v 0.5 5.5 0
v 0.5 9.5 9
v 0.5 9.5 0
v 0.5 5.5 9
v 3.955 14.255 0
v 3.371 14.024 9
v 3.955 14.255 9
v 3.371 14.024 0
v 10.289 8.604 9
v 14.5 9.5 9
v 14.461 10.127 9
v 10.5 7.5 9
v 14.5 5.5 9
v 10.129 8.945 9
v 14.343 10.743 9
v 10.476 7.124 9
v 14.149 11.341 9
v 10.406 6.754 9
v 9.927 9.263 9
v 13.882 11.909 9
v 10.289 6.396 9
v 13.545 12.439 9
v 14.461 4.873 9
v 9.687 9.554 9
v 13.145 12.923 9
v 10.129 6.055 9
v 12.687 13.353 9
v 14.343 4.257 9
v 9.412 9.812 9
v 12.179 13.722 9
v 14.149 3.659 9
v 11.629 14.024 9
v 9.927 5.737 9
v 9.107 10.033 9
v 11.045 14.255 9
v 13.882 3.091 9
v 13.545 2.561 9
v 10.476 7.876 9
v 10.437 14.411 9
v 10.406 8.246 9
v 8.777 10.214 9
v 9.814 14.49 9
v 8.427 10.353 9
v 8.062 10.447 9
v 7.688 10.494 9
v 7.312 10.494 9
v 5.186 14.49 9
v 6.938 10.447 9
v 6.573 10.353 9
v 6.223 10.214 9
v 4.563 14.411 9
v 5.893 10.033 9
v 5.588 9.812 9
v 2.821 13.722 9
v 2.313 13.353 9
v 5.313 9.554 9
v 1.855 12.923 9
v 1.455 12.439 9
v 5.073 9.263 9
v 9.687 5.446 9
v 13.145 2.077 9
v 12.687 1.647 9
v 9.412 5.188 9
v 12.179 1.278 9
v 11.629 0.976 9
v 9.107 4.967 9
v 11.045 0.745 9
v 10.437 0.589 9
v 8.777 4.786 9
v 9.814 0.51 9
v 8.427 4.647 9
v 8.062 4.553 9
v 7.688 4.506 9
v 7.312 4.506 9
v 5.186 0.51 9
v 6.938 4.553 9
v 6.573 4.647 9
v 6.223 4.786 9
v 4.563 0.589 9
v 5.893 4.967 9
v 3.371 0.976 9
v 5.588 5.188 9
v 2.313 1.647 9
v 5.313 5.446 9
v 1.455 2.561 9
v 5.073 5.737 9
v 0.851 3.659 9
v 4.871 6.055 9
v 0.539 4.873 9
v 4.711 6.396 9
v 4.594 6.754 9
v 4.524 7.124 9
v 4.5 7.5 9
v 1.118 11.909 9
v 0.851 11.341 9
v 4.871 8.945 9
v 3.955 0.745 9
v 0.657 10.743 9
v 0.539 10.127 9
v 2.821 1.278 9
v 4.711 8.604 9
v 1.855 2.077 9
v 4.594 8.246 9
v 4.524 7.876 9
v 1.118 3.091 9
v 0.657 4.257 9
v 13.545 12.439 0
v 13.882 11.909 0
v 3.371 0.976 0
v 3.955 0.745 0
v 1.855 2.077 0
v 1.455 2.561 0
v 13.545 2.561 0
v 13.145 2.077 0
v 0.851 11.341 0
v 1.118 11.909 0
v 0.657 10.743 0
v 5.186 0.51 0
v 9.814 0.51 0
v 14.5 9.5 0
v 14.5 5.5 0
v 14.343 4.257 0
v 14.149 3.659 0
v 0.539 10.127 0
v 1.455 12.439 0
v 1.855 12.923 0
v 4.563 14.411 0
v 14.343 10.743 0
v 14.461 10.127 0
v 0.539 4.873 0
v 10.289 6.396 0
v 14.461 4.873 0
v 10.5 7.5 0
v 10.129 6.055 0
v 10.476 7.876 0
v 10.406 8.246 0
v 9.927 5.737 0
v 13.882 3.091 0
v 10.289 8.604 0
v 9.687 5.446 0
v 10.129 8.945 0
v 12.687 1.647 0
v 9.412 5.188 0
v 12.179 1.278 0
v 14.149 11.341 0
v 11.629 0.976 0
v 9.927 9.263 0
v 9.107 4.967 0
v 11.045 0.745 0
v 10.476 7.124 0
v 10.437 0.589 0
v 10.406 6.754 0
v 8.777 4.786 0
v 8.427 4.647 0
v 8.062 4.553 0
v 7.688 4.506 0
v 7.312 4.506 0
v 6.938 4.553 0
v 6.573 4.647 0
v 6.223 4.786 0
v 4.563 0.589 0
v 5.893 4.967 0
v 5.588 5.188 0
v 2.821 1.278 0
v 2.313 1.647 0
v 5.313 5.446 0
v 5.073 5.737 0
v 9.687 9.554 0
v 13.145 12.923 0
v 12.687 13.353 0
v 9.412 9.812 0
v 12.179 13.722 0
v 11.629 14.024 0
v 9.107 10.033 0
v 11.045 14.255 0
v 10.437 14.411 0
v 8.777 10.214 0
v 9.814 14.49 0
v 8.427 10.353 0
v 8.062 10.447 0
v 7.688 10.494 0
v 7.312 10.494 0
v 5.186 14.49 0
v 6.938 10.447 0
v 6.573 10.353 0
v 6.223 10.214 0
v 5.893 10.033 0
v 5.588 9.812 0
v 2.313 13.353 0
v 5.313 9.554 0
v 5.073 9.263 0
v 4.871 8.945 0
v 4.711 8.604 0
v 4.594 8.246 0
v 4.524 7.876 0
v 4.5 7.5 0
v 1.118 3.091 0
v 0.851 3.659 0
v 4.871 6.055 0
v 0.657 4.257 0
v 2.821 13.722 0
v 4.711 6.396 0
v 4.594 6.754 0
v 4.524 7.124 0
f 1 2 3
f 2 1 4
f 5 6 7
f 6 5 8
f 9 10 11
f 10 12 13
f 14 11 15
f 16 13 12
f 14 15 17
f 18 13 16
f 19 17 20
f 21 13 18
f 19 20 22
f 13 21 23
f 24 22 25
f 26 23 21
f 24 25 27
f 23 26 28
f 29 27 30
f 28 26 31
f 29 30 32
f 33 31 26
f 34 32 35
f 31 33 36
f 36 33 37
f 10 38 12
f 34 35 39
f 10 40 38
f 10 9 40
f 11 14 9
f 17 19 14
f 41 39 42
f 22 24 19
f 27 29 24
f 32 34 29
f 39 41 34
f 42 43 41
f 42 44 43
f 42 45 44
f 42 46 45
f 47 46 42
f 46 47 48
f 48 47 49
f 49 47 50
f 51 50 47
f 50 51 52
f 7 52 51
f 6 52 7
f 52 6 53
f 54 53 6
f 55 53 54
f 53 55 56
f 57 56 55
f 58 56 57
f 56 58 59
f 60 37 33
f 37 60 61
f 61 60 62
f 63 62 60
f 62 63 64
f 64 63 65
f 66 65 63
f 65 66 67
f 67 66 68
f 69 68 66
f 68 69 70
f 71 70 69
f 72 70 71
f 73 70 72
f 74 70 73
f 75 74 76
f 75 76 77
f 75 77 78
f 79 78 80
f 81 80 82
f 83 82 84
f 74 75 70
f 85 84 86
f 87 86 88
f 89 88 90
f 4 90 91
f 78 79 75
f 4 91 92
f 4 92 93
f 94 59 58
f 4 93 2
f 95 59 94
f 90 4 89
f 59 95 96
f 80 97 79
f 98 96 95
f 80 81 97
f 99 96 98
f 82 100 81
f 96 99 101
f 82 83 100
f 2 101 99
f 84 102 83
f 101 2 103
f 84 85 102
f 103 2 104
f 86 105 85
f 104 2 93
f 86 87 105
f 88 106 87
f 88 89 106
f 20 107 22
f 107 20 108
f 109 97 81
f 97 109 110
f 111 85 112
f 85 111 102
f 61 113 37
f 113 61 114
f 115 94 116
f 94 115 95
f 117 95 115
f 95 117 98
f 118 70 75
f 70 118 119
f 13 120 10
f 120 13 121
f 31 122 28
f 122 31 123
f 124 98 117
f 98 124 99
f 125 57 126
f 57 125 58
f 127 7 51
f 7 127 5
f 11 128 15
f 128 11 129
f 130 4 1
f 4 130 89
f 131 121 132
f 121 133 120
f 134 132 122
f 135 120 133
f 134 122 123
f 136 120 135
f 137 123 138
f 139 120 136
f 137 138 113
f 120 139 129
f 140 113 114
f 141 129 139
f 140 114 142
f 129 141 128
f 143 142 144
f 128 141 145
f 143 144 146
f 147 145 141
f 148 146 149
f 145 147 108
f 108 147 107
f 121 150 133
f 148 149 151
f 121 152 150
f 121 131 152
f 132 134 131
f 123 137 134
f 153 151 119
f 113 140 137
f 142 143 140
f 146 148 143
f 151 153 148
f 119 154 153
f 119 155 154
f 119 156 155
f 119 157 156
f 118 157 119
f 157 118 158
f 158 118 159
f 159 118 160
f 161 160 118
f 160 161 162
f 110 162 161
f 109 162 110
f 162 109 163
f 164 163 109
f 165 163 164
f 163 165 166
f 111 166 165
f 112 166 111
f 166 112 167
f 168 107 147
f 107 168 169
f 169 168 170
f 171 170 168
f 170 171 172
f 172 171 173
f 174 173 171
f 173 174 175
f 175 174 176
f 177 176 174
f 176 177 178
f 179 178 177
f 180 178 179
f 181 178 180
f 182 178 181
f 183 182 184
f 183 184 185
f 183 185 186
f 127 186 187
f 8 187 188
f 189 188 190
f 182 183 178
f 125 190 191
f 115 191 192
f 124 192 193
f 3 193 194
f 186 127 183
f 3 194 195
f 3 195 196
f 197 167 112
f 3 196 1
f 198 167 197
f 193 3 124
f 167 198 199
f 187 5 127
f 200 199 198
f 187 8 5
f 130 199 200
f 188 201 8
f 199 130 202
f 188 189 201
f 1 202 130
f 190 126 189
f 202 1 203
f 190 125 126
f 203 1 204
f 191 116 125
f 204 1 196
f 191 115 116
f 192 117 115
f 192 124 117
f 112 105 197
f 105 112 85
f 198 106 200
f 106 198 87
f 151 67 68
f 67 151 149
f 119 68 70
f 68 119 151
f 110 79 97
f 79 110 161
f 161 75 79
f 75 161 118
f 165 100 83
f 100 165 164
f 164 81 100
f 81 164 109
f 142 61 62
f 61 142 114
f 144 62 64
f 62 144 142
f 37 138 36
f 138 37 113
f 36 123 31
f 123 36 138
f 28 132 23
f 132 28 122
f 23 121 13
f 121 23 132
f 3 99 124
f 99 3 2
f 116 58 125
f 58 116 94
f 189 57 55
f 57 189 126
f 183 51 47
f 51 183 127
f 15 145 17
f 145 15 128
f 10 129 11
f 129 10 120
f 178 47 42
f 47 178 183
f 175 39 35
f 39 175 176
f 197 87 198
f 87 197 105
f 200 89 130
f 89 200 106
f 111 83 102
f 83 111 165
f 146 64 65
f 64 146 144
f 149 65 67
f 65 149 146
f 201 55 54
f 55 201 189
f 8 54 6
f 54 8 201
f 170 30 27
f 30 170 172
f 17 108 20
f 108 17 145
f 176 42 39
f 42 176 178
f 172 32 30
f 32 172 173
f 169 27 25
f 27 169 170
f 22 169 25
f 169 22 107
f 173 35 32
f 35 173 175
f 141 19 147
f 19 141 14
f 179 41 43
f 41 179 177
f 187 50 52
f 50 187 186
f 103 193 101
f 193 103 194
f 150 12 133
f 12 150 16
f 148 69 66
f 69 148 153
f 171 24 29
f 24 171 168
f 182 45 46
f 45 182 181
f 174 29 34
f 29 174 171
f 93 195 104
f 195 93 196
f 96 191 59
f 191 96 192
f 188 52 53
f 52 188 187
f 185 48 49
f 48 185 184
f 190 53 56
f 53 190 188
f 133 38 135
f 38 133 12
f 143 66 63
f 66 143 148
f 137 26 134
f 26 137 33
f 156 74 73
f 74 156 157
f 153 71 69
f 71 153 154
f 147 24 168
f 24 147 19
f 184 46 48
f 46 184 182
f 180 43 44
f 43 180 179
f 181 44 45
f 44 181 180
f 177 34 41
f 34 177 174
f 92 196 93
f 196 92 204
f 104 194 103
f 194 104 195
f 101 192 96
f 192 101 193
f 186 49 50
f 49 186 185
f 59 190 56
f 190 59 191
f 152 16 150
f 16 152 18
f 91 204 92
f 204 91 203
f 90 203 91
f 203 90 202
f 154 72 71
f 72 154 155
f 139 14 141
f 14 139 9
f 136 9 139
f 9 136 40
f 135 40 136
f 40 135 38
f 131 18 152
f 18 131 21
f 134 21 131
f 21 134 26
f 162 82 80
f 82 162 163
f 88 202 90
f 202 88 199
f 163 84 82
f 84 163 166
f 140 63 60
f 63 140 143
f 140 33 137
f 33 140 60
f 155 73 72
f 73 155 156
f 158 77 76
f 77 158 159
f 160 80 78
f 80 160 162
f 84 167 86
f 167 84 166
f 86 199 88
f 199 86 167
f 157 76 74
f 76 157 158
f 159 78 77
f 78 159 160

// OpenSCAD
// Generated by SolidPython 1.1.3 on 2023-01-30 14:06:56
$fn = 50;


difference() {
	union() {
		translate(v = [7.5000000000, 7.5000000000, 0]) {
			rotate(a = [0, 0, 0]) {
				hull() {
					translate(v = [-2.0000000000, 2.0000000000, 0]) {
						rotate(a = [0, 0, 0]) {
							translate(v = [0, 0, 0]) {
								rotate(a = [0, 0, 0]) {
									cylinder(h = 9, r = 5);
								}
							}
						}
					}
					translate(v = [2.0000000000, 2.0000000000, 0]) {
						rotate(a = [0, 0, 0]) {
							translate(v = [0, 0, 0]) {
								rotate(a = [0, 0, 0]) {
									cylinder(h = 9, r = 5);
								}
							}
						}
					}
					translate(v = [-2.0000000000, -2.0000000000, 0]) {
						rotate(a = [0, 0, 0]) {
							translate(v = [0, 0, 0]) {
								rotate(a = [0, 0, 0]) {
									cylinder(h = 9, r = 5);
								}
							}
						}
					}
					translate(v = [2.0000000000, -2.0000000000, 0]) {
						rotate(a = [0, 0, 0]) {
							translate(v = [0, 0, 0]) {
								rotate(a = [0, 0, 0]) {
									cylinder(h = 9, r = 5);
								}
							}
						}
					}
				}
			}
		}
	}
	union() {
		translate(v = [7.5000000000, 7.5000000000, 0]) {
			rotate(a = [0, 0, 0]) {
				translate(v = [0, 0, -50]) {
					rotate(a = [0, 0, 0]) {
						cylinder(h = 100, r = 3.0000000000);
					}
				}
			}
		}
	}
}
/***********************************************
*********      SolidPython code:      **********
************************************************
 
from solid import *
import os
import subprocess

import oomB

import opsc_library_gen

mode = "laser"
#mode = "3d_print"

defined_objects = {}

radius_dict = {}
countersunk_dict = {}


def set_mode(m):
    global mode
    mode = m
    radius_dict['M6'] = 6.5/2
    radius_dict['M3'] = 3.3/2
    if mode == "laser":
        radius_dict['M6'] = 6/2
        radius_dict['M3'] = 3/2

    countersunk_dict['M3'] = {}
    countersunk_dict['M3']['little_rad'] = radius_dict['M3']
    countersunk_dict['M3']['big_rad'] = (5.5+0.6)/2
    if mode == "laser":
        countersunk_dict['M3']['big_rad'] = (4.75+0.6)/2
        countersunk_dict['M3']['little_rad'] = (4.75+0.6)/2

    countersunk_dict['M3']['height'] = 1.7


def opsc_make_object(filename, objects, save_type="none",resolution=50, layers = 1, tilediff = 200, mode="laser"):
    set_mode(mode)
    save_type = save_type.lower()
    os.makedirs(os.path.dirname(filename), exist_ok=True)
    final_object = opsc_get_object(objects)
    # Save the final object to the specified filename    
    scad_render_to_file(final_object, filename, file_header='$fn = %s;' % resolution, include_orig_code=True)
    if mode == "laser":
        filename_laser = filename.replace(".scad","-flat.scad")
        scad_render_to_file(getLaser(final_object, layers=layers, tilediff=tilediff), filename_laser, file_header='$fn = %s;' % resolution, include_orig_code=True)
        if save_type == "all":
            saveToAll(filename_laser)
        elif save_type == "dxf":
            saveToDxf(filename_laser)
    if save_type == "all":
        saveToAll(filename)
    elif save_type == "dxf":
        saveToDxf(filename)


def opsc_get_object(objects):
    # Create the solidpython objects
    positive_objects = [get_opsc_item(obj) for obj in objects if obj['type'] == 'positive']
    negative_objects = [get_opsc_item(obj) for obj in objects if obj['type'] == 'negative']
    # Union the positive objects
    positive_object = union()(*positive_objects)
    # Union the negative objects
    negative_object = union()(*negative_objects)
    # Create the final object by subtracting the negative objects from the positive objects
    return difference()(positive_object, negative_object)

def get_opsc_item(params):
    # A dictionary to map radius string values to numerical values
    #radius_dict = {'small': 5, 'medium': 10, 'large': 15}
    # An array of function names for basic shapes
    basic_shapes = ['cube', 'sphere', 'cylinder']
    
    # An array of function names for other shapes
    other_shapes = ['hole', 'slot', 'rounded_rectangle', 'countersunk']
    


    # Convert radius to r if present, and remove radius from the params dictionary
    if 'radius' in params:
        if isinstance(params['radius'], str):
            # Use the radius_dict to map the radius string value to a numerical value
            params['r'] = radius_dict[params['radius']]
        else:
            params['r'] = params['radius']
        del params['radius']
    

    # Check if the object type is a basic shape
    if params['shape'] in basic_shapes:
        # Remove shape and unexpected dictionary values
        allowed_keys = {'size', 'r', 'r1', 'r2', 'd', 'h', 'rw', 'rh', 'dw', 'dh'}
        shape_params = {k: v for k, v in params.items() if k in allowed_keys}

        # Call the corresponding function for the shape parameter, using ** notation to pass the shape_params dictionary as keyword arguments
        return get_opsc_transform(params,globals()[params['shape']](**shape_params))
    
    # If the object type is not a basic shape, check if it's a defined object or one of the other shapes
    elif params['shape'] in other_shapes:
        # Call the corresponding function for the shape parameter, passing the params dictionary as an argument
        p2 = copy.deepcopy(params)
        p2["pos"] = [0,0,0]
        return get_opsc_transform(params,globals()[params['shape']](p2))
    
    # If the object is not a basic shape or a defined object, try to import it from a .scad file
    else:
        obj = defined_objects[params['shape']]
        return get_opsc_transform(params,obj)

def get_opsc_transform(params, solid_obj):
    # Rotate the object based on the 'rot' field in the params dictionary, or the 'rotX', 'rotY', and 'rotZ' fields if 'rot' is not present
    rot = params.get('rot', [])
    if rot:
        rotX, rotY, rotZ = rot
    else:
        rotX = params.get('rotX', 0)
        rotY = params.get('rotY', 0)
        rotZ = params.get('rotZ', 0)
    solid_obj = rotate([rotX, rotY, rotZ])(solid_obj)

    # Translate the object based on the 'pos' field in the params dictionary, or the 'x', 'y', and 'z' fields if 'pos' is not present
    pos = params.get('pos', [])
    if pos:
        x, y, z = pos
    else:
        x = params.get('x', 0)
        y = params.get('y', 0)
        z = params.get('z', 0)
    solid_obj = translate([x, y, z])(solid_obj)
    return solid_obj


import random

def opsc_easy_array(type, shape, repeats, pos_start, shift_arr, **kwargs):
    for i in range(0,3):
        repeats.append(1)
        pos_start.append(0)
        shift_arr.append(0)
    return_objects = []

    for x in range(0,repeats[0]):
        for y in range(0,repeats[1]):
            for z in range(0,repeats[2]):
                return_objects.append(opsc_easy(type, shape, pos=[pos_start[0]+x*shift_arr[0],pos_start[1]+y*shift_arr[1],pos_start[2]+z*shift_arr[2]], **kwargs))
    return return_objects                



def opsc_easy(type, shape, **kwargs):
    obj = {
        'type': type,
        'shape': shape
    }
    for param in ['size', 'r', 'r1', 'r2', 'd', 'h', 'rw', 'rh', 'dw', 'dh', 'pos', 'x', 'y', 'z', 'rot', 'rotX', 'rotY', 'rotZ', "w"]:
        if param in kwargs:
            obj[param] = kwargs[param]
    return obj

def hole(params):
    p2 = copy.deepcopy(params)  
    # Check if the radius is a string and replace it with the corresponding value from the dictionary
    if isinstance(p2['r'], str):
        p2['r'] = radius_dict[p2['r']]
    
    # Set the height to 100 if not specified
    if 'h' not in p2:
        p2['h'] = 100
        p2["pos"] = [0,0,-50]
    p2["center"] = True
    # Create the cylinder object
    p2["shape"] = "cylinder"
    p2["type"] = "positive"

    return get_opsc_item(p2)

import copy

def countersunk(params):
    p2 = copy.deepcopy(params)
    counter_rad = p2['r']
    p2['r'] = radius_dict[p2['r']]
    hp = copy.deepcopy(p2)
    hp["type"] = "positive"
    hp["shape"] = "hole"
    del hp["rot"]
    hol = get_opsc_item(hp)
    
    cp = copy.deepcopy(p2)
    cp["h"] = countersunk_dict[counter_rad]["height"]
    cp["r2"] = countersunk_dict[counter_rad]["little_rad"]
    cp["r1"] = countersunk_dict[counter_rad]["big_rad"]
    del cp["r"]
    del cp["rot"]
    cp["type"] = "positive"
    cp["shape"] = "cylinder"
    cp["pos"] = [0,0,0]

    top = get_opsc_item(cp)
    return union()(hol,top)



def slot(params):  
    p2 = copy.deepcopy(params) 
    if isinstance(p2['r'], str):
        p2['r'] = radius_dict[p2['r']]
    p2["type"] = "positive"
    p2["shape"] = "hole"
    del p2["rot"]
    p2["pos"] = [0,0,0]
    left = copy.deepcopy(p2)
    right = copy.deepcopy(p2)
    left["pos"][0] = p2["w"] / 2 - p2["r"] 
    
    right["pos"][0] = -p2["w"] / 2 + p2["r"] 
    pass
    leftObj = get_opsc_item(left)
    rightObj = get_opsc_item(right)
    return hull()(leftObj, rightObj)

def rounded_rectangle(params):   
    p2 = copy.deepcopy(params) 
    p2["h"] = p2["size"][2]
    p2["pos"] = p2.get("pos", [0, 0, 0]) 
    p2["type"] = "positive"
    p2["shape"] = "hole"
    p2["pos"] = [0,0,0]
    
    if 'rot' in p2:
        del p2["rot"]   
    if 'r' not in p2:
        p2["r"] = 5 
    tl = copy.deepcopy(p2)
    tr = copy.deepcopy(p2)
    bl = copy.deepcopy(p2)
    br = copy.deepcopy(p2)
    tl["pos"][0] = -(p2["size"][0] - p2["r"]*2)/2
    tl["pos"][1] = (p2["size"][1] - p2["r"]*2)/2
    tr["pos"][0] = (p2["size"][0] - p2["r"]*2)/2
    tr["pos"][1] = (p2["size"][1] - p2["r"]*2)/2
    bl["pos"][0] = -(p2["size"][0] - p2["r"]*2)/2
    bl["pos"][1] = -(p2["size"][1] - p2["r"]*2)/2
    br["pos"][0] = (p2["size"][0] - p2["r"]*2)/2
    br["pos"][1] = -(p2["size"][1] - p2["r"]*2)/2
    del tl["size"]
    del tr["size"]
    del bl["size"]
    del br["size"]
    tlo = get_opsc_item(tl)
    tro = get_opsc_item(tr)
    blo = get_opsc_item(bl)
    bro = get_opsc_item(br)    
    return hull()(tlo, tro, blo, bro)



def import_scad_object(filename):
    # Import the .scad file and convert it to a solidpython object
    #filename = "parts"
    obj = import_scad(filename)
    return obj.main()
    


import os
import solid as solidpython

# A dictionary to store the defined objects


def load_scad_objects():
    opsc_library_gen.gen_library(defined_objects)

import random

def test(num_objects):
    objects = []
    for i in range(num_objects):
        # Choose a random shape
        #shape = random.choice(['cube', 'sphere', 'cylinder', 'hole', 'slot', "rounded_rectangle"])
        shape = random.choice(["rounded_rectangle"])

        # Choose a random type
        type = random.choice(['positive', 'negative'])
        
        # Create an empty object dictionary
        obj = {'shape': shape, 'type': type}
        
        # Set shape-specific parameters
        if obj['shape'] in ['cube']:
            obj['size'] =  [random.uniform(5, 15), random.uniform(5, 15), random.uniform(5, 15)]
        if obj['shape'] in ['rounded_rectangle']:
            obj['size'] =  [random.uniform(5, 15), random.uniform(5, 15), random.uniform(5, 15)]
            obj['r'] = random.uniform(0.5, 5)
        elif obj['shape'] == 'sphere':
            obj['r'] = random.uniform(5, 15)
        elif obj['shape'] in ['cylinder', 'hole']:
            obj['r'] = random.uniform(0.5, 5)
            obj['h'] = random.uniform(5, 15)
        elif obj['shape'] == 'slot':
            obj['r'] = random.uniform(0.5, 5)
            obj['h'] = random.uniform(5, 15)
            obj['w'] = random.uniform(5, 15)
        
        # Set a random position and rotation
        obj['pos'] = [random.uniform(-20, 20), random.uniform(-20, 20), random.uniform(-20, 20)]
        obj['rot'] = [random.uniform(-180, 180), random.uniform(-180, 180), random.uniform(-180, 180)]
        
        # Add the object to the list
        objects.append(obj)
    return objects

####### old file saving
def saveToAll(fileIn):
    saveToDxf(fileIn)
    saveToPng(fileIn)
    saveToStl(fileIn)
    saveToSvg(fileIn)

def saveToDxf(fileIn, fileOut="", copy_to_laser=True):
    if fileOut == "":
        fileOut = fileIn.replace(".scad",".dxf")
    saveToFile(fileIn, fileOut)


    
def saveToPng(fileIn, fileOut="",extra="--render"):
    if fileOut == "":
        fileOut = fileIn.replace(".scad",".png")
    saveToFile(fileIn, fileOut)

def saveToStl(fileIn, fileOut=""):
    if fileOut == "":
        fileOut = fileIn.replace(".scad",".stl")
    saveToFile(fileIn, fileOut)
    
def saveToSvg(fileIn, fileOut=""):
    if fileOut == "":
        fileOut = fileIn.replace(".scad",".svg")
    saveToFile(fileIn, fileOut)

def saveToFile(fileIn, fileOut,extra=""):
    #extra = extra + " --colorscheme Tomorrow"

    launchStr = 'openscad -o "' + fileOut + '"' + extra + ' "' + fileIn + '"'
    if ".png" in fileOut:
        launchStr = launchStr + " --render"
    print("            saveToFile launch string: " + launchStr)
    subprocess.run(launchStr)
    x=0

def getLaser(final_object,start=1.5,layers=1,thickness=3,tilediff=200):
        rv= []

        for x in range(layers):
            rv.append(translate([0,x*tilediff,0])(
                    projection()(
                        intersection()(translate([-500,-500,start+x*thickness])(cube(size=[1000,1000,0.1])),
                            final_object
                        )
                    )
            )
            )
            
        return union()(rv)

set_mode("laser")
load_scad_objects() 
 
************************************************/
